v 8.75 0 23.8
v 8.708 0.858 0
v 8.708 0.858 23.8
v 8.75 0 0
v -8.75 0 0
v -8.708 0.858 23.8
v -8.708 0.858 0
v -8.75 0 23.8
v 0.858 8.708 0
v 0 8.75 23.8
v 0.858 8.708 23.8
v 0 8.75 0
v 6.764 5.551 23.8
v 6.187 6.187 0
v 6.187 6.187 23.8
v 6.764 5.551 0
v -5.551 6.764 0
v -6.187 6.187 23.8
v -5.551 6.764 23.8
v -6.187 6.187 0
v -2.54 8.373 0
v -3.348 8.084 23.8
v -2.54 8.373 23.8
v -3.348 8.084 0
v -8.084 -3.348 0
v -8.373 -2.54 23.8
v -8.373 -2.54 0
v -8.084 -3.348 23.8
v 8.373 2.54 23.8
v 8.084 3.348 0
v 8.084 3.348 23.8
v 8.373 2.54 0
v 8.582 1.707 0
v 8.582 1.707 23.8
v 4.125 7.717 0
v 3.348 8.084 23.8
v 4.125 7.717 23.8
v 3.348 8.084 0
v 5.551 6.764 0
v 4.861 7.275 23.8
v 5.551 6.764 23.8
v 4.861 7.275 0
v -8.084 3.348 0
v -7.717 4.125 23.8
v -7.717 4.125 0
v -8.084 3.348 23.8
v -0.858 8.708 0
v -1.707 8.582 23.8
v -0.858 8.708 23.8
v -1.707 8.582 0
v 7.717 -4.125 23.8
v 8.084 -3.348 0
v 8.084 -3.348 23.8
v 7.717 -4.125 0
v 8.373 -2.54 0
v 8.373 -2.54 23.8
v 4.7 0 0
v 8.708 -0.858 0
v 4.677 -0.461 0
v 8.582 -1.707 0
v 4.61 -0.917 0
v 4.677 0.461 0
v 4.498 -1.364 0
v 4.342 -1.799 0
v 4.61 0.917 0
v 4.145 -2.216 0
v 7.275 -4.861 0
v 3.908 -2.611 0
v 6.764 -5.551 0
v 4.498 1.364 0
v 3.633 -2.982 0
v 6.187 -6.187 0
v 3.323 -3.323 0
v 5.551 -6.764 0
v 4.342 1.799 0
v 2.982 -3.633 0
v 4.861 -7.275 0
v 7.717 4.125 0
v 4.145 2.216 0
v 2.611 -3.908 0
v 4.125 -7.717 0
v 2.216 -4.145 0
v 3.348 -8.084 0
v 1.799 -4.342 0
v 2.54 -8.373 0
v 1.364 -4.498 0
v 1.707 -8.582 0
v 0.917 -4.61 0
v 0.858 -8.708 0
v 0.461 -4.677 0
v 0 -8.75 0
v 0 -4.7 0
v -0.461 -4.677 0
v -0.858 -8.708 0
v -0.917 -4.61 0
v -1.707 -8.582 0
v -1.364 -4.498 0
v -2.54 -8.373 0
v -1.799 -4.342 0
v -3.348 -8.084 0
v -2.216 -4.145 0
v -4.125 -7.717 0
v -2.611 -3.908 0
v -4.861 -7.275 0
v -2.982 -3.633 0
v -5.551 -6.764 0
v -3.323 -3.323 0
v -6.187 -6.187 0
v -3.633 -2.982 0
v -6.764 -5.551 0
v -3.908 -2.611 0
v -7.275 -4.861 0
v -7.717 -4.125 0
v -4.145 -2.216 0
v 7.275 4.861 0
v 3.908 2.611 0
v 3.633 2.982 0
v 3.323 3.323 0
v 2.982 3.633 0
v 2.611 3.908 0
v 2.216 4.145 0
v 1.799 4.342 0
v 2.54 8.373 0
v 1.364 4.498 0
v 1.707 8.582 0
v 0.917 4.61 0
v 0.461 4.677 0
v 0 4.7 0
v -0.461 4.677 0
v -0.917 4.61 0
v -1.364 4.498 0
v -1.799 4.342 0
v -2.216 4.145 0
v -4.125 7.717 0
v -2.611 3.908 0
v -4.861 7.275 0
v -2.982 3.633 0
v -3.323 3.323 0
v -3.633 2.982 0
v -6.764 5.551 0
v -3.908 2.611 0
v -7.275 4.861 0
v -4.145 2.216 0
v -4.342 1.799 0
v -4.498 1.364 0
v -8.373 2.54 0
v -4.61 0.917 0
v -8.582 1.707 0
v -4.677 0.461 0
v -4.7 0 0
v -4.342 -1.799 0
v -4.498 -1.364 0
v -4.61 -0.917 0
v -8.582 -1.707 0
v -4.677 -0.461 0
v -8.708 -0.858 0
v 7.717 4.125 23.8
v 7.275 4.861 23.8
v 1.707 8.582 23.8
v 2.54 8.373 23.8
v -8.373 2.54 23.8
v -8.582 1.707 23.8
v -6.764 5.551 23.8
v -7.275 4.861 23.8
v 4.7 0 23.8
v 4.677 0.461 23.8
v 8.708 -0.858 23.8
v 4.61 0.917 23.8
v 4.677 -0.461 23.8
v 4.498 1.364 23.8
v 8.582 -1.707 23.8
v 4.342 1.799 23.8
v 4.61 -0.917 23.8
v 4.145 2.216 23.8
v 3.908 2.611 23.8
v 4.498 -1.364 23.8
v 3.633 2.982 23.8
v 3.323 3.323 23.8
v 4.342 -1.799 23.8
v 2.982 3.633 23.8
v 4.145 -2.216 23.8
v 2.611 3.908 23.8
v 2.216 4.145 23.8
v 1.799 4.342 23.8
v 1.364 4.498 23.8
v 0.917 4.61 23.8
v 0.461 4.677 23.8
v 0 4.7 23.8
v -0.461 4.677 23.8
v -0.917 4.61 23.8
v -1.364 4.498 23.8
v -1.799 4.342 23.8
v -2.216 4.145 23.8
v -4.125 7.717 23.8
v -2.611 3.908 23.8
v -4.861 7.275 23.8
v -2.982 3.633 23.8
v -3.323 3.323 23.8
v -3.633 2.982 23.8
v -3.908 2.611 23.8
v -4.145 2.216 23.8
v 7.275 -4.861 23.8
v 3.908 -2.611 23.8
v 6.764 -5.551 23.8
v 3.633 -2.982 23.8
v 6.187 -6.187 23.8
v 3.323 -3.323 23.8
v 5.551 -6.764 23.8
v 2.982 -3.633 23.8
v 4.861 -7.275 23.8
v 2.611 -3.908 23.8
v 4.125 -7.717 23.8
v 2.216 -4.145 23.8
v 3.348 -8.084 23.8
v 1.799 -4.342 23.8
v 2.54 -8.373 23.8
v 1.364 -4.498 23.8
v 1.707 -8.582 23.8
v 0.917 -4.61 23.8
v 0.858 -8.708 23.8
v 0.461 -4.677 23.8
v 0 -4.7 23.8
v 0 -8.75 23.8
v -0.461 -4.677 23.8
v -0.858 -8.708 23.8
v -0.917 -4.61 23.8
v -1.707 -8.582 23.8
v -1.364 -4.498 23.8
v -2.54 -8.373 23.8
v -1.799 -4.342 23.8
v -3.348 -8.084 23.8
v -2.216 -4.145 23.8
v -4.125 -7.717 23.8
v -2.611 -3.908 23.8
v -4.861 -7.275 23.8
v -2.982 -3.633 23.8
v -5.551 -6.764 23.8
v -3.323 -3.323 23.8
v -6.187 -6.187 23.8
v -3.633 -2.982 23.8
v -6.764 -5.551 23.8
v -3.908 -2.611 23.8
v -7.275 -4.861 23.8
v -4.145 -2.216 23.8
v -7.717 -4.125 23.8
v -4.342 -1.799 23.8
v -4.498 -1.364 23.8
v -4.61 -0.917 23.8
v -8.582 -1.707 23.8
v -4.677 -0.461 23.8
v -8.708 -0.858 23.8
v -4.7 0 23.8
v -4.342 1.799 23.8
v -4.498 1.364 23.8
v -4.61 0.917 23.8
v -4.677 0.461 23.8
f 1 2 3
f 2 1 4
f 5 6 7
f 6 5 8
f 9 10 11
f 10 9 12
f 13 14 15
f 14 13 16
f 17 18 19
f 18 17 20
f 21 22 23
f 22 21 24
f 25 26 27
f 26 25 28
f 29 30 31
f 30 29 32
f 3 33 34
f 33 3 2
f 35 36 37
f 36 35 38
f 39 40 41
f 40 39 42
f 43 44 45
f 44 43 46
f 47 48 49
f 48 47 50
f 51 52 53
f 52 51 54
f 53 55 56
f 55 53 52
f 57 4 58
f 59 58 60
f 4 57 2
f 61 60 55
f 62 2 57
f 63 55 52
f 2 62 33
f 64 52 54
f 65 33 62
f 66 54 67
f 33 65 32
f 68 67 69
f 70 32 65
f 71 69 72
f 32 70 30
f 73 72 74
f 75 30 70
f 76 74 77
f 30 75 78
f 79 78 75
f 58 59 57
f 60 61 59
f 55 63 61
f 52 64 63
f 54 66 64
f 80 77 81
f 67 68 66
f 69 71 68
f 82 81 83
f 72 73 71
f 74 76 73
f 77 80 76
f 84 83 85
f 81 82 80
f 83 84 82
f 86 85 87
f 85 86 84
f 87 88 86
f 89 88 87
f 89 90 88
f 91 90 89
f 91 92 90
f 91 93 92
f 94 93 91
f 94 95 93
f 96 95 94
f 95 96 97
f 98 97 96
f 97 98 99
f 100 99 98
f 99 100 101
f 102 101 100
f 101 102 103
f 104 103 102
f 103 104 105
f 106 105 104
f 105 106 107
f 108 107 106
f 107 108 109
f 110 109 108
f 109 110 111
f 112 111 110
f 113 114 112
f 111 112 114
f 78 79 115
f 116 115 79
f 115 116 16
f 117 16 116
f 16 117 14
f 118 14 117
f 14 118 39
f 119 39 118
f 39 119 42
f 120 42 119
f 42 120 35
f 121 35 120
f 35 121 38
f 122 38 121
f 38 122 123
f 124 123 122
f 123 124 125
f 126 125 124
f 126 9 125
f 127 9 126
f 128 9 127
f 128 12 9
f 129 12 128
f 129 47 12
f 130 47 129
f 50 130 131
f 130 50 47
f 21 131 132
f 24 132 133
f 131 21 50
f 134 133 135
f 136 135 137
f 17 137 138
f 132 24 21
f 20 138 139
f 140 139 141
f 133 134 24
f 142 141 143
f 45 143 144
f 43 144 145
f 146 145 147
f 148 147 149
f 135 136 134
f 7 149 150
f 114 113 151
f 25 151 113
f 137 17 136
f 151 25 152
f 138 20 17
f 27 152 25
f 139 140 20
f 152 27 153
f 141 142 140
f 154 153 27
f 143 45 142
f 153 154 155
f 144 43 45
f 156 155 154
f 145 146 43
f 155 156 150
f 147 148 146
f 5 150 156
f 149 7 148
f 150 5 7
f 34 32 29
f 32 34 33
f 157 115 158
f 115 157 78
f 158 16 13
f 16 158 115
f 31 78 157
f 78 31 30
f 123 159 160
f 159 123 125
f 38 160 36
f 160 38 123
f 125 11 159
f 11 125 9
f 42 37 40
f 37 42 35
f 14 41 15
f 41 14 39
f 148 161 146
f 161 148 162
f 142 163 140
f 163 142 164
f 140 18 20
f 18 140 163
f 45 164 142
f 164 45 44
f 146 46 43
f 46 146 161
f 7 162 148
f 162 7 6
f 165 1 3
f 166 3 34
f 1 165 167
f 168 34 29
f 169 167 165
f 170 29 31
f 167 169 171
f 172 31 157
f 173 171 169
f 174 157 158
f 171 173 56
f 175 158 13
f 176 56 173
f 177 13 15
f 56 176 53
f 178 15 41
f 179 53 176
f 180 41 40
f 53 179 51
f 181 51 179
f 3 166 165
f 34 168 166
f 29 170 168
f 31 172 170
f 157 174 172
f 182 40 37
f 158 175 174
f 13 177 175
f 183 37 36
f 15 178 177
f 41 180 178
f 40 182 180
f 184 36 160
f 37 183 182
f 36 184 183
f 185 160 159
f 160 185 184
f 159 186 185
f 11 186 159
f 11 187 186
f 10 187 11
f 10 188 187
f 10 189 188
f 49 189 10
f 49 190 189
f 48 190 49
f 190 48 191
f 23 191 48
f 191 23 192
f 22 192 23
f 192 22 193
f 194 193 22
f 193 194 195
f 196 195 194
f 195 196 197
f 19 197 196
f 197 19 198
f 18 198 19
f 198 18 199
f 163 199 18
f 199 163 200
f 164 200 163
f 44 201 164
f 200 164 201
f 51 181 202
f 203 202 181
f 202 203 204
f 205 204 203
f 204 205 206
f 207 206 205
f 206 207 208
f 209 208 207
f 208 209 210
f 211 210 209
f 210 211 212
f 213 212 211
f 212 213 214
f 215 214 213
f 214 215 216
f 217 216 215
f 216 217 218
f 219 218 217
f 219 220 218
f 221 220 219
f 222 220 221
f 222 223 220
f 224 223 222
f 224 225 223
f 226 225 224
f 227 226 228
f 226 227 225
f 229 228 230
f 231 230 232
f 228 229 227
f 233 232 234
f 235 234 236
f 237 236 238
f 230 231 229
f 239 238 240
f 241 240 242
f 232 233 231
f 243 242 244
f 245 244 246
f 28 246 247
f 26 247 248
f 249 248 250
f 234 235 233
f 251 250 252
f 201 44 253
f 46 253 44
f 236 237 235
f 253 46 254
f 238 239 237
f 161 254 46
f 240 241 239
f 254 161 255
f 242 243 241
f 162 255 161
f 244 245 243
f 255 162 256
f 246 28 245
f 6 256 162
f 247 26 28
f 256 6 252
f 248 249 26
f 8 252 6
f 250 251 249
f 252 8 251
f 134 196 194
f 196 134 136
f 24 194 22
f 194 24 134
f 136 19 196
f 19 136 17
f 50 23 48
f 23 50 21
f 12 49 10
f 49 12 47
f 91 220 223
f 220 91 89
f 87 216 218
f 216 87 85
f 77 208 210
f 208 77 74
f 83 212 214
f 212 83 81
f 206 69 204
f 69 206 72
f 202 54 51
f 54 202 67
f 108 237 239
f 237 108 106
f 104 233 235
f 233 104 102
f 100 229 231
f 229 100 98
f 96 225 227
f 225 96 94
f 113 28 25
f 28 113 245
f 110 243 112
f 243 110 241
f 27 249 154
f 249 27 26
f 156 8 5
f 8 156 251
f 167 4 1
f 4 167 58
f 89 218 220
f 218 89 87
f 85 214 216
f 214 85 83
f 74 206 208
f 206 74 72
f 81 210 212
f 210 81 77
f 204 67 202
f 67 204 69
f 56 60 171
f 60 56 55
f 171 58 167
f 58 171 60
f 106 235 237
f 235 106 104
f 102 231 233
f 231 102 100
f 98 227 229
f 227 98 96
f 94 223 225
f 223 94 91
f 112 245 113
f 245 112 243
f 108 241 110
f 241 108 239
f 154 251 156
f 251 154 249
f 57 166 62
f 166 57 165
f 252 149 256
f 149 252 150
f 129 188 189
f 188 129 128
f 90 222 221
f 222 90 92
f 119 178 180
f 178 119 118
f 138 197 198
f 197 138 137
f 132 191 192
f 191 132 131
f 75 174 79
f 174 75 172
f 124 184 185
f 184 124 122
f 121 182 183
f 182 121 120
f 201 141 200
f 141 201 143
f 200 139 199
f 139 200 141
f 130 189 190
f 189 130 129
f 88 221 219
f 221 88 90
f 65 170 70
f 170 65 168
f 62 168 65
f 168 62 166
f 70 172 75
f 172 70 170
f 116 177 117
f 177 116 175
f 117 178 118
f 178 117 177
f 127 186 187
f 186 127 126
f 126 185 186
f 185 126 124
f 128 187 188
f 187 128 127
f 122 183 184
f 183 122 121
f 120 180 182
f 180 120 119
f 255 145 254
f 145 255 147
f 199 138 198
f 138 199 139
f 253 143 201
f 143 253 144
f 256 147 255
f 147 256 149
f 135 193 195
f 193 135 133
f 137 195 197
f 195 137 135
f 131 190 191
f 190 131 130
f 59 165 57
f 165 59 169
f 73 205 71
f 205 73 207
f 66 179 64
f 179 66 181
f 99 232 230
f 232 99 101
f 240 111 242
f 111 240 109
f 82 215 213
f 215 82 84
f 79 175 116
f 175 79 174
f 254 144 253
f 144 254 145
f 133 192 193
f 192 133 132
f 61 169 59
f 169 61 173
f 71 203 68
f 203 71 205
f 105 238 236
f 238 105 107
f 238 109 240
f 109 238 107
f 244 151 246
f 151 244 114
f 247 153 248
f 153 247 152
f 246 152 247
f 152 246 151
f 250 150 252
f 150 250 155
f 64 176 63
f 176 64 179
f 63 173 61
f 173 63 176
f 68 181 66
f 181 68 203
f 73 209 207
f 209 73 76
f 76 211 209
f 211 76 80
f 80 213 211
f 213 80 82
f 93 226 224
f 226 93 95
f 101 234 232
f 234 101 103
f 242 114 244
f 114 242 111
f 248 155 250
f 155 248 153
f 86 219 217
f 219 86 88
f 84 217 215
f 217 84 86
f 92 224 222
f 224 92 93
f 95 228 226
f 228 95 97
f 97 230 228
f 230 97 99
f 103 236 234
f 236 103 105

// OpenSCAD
// Smoothness of the cylinders
$fn = 64;

// inputs
od = 17.5; // Outer diameter of the bumper
peg_od = 9.7;  // the peg that the bumper fits onto.
tightness = 0.3; // Increase this value for a tighter fit, decrease for a looser fit (mm)
id = peg_od - tightness; // Inner diameter of the bumper, calculated for a snug fit
height = 23.8; // Total height of the bumper

// Main module to create the rubber bumper
module rubber_bumper() {
    difference() {
        cylinder(h=height, d=od);

        // Remove the inner cylinder to create the hollow core
        translate([0, 0, -1])
            cylinder(h=height + 2, d=id);
    }
}

rubber_bumper();
